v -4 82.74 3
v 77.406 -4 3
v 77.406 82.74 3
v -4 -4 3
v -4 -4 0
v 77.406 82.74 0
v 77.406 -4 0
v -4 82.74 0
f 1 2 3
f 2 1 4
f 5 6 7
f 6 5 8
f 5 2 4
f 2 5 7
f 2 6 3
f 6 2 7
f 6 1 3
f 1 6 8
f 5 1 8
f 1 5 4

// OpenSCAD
// Units: mm. PCB stand worked example.
translate([-4, -4, 0])
  cube([81.406, 86.740, 3]);
